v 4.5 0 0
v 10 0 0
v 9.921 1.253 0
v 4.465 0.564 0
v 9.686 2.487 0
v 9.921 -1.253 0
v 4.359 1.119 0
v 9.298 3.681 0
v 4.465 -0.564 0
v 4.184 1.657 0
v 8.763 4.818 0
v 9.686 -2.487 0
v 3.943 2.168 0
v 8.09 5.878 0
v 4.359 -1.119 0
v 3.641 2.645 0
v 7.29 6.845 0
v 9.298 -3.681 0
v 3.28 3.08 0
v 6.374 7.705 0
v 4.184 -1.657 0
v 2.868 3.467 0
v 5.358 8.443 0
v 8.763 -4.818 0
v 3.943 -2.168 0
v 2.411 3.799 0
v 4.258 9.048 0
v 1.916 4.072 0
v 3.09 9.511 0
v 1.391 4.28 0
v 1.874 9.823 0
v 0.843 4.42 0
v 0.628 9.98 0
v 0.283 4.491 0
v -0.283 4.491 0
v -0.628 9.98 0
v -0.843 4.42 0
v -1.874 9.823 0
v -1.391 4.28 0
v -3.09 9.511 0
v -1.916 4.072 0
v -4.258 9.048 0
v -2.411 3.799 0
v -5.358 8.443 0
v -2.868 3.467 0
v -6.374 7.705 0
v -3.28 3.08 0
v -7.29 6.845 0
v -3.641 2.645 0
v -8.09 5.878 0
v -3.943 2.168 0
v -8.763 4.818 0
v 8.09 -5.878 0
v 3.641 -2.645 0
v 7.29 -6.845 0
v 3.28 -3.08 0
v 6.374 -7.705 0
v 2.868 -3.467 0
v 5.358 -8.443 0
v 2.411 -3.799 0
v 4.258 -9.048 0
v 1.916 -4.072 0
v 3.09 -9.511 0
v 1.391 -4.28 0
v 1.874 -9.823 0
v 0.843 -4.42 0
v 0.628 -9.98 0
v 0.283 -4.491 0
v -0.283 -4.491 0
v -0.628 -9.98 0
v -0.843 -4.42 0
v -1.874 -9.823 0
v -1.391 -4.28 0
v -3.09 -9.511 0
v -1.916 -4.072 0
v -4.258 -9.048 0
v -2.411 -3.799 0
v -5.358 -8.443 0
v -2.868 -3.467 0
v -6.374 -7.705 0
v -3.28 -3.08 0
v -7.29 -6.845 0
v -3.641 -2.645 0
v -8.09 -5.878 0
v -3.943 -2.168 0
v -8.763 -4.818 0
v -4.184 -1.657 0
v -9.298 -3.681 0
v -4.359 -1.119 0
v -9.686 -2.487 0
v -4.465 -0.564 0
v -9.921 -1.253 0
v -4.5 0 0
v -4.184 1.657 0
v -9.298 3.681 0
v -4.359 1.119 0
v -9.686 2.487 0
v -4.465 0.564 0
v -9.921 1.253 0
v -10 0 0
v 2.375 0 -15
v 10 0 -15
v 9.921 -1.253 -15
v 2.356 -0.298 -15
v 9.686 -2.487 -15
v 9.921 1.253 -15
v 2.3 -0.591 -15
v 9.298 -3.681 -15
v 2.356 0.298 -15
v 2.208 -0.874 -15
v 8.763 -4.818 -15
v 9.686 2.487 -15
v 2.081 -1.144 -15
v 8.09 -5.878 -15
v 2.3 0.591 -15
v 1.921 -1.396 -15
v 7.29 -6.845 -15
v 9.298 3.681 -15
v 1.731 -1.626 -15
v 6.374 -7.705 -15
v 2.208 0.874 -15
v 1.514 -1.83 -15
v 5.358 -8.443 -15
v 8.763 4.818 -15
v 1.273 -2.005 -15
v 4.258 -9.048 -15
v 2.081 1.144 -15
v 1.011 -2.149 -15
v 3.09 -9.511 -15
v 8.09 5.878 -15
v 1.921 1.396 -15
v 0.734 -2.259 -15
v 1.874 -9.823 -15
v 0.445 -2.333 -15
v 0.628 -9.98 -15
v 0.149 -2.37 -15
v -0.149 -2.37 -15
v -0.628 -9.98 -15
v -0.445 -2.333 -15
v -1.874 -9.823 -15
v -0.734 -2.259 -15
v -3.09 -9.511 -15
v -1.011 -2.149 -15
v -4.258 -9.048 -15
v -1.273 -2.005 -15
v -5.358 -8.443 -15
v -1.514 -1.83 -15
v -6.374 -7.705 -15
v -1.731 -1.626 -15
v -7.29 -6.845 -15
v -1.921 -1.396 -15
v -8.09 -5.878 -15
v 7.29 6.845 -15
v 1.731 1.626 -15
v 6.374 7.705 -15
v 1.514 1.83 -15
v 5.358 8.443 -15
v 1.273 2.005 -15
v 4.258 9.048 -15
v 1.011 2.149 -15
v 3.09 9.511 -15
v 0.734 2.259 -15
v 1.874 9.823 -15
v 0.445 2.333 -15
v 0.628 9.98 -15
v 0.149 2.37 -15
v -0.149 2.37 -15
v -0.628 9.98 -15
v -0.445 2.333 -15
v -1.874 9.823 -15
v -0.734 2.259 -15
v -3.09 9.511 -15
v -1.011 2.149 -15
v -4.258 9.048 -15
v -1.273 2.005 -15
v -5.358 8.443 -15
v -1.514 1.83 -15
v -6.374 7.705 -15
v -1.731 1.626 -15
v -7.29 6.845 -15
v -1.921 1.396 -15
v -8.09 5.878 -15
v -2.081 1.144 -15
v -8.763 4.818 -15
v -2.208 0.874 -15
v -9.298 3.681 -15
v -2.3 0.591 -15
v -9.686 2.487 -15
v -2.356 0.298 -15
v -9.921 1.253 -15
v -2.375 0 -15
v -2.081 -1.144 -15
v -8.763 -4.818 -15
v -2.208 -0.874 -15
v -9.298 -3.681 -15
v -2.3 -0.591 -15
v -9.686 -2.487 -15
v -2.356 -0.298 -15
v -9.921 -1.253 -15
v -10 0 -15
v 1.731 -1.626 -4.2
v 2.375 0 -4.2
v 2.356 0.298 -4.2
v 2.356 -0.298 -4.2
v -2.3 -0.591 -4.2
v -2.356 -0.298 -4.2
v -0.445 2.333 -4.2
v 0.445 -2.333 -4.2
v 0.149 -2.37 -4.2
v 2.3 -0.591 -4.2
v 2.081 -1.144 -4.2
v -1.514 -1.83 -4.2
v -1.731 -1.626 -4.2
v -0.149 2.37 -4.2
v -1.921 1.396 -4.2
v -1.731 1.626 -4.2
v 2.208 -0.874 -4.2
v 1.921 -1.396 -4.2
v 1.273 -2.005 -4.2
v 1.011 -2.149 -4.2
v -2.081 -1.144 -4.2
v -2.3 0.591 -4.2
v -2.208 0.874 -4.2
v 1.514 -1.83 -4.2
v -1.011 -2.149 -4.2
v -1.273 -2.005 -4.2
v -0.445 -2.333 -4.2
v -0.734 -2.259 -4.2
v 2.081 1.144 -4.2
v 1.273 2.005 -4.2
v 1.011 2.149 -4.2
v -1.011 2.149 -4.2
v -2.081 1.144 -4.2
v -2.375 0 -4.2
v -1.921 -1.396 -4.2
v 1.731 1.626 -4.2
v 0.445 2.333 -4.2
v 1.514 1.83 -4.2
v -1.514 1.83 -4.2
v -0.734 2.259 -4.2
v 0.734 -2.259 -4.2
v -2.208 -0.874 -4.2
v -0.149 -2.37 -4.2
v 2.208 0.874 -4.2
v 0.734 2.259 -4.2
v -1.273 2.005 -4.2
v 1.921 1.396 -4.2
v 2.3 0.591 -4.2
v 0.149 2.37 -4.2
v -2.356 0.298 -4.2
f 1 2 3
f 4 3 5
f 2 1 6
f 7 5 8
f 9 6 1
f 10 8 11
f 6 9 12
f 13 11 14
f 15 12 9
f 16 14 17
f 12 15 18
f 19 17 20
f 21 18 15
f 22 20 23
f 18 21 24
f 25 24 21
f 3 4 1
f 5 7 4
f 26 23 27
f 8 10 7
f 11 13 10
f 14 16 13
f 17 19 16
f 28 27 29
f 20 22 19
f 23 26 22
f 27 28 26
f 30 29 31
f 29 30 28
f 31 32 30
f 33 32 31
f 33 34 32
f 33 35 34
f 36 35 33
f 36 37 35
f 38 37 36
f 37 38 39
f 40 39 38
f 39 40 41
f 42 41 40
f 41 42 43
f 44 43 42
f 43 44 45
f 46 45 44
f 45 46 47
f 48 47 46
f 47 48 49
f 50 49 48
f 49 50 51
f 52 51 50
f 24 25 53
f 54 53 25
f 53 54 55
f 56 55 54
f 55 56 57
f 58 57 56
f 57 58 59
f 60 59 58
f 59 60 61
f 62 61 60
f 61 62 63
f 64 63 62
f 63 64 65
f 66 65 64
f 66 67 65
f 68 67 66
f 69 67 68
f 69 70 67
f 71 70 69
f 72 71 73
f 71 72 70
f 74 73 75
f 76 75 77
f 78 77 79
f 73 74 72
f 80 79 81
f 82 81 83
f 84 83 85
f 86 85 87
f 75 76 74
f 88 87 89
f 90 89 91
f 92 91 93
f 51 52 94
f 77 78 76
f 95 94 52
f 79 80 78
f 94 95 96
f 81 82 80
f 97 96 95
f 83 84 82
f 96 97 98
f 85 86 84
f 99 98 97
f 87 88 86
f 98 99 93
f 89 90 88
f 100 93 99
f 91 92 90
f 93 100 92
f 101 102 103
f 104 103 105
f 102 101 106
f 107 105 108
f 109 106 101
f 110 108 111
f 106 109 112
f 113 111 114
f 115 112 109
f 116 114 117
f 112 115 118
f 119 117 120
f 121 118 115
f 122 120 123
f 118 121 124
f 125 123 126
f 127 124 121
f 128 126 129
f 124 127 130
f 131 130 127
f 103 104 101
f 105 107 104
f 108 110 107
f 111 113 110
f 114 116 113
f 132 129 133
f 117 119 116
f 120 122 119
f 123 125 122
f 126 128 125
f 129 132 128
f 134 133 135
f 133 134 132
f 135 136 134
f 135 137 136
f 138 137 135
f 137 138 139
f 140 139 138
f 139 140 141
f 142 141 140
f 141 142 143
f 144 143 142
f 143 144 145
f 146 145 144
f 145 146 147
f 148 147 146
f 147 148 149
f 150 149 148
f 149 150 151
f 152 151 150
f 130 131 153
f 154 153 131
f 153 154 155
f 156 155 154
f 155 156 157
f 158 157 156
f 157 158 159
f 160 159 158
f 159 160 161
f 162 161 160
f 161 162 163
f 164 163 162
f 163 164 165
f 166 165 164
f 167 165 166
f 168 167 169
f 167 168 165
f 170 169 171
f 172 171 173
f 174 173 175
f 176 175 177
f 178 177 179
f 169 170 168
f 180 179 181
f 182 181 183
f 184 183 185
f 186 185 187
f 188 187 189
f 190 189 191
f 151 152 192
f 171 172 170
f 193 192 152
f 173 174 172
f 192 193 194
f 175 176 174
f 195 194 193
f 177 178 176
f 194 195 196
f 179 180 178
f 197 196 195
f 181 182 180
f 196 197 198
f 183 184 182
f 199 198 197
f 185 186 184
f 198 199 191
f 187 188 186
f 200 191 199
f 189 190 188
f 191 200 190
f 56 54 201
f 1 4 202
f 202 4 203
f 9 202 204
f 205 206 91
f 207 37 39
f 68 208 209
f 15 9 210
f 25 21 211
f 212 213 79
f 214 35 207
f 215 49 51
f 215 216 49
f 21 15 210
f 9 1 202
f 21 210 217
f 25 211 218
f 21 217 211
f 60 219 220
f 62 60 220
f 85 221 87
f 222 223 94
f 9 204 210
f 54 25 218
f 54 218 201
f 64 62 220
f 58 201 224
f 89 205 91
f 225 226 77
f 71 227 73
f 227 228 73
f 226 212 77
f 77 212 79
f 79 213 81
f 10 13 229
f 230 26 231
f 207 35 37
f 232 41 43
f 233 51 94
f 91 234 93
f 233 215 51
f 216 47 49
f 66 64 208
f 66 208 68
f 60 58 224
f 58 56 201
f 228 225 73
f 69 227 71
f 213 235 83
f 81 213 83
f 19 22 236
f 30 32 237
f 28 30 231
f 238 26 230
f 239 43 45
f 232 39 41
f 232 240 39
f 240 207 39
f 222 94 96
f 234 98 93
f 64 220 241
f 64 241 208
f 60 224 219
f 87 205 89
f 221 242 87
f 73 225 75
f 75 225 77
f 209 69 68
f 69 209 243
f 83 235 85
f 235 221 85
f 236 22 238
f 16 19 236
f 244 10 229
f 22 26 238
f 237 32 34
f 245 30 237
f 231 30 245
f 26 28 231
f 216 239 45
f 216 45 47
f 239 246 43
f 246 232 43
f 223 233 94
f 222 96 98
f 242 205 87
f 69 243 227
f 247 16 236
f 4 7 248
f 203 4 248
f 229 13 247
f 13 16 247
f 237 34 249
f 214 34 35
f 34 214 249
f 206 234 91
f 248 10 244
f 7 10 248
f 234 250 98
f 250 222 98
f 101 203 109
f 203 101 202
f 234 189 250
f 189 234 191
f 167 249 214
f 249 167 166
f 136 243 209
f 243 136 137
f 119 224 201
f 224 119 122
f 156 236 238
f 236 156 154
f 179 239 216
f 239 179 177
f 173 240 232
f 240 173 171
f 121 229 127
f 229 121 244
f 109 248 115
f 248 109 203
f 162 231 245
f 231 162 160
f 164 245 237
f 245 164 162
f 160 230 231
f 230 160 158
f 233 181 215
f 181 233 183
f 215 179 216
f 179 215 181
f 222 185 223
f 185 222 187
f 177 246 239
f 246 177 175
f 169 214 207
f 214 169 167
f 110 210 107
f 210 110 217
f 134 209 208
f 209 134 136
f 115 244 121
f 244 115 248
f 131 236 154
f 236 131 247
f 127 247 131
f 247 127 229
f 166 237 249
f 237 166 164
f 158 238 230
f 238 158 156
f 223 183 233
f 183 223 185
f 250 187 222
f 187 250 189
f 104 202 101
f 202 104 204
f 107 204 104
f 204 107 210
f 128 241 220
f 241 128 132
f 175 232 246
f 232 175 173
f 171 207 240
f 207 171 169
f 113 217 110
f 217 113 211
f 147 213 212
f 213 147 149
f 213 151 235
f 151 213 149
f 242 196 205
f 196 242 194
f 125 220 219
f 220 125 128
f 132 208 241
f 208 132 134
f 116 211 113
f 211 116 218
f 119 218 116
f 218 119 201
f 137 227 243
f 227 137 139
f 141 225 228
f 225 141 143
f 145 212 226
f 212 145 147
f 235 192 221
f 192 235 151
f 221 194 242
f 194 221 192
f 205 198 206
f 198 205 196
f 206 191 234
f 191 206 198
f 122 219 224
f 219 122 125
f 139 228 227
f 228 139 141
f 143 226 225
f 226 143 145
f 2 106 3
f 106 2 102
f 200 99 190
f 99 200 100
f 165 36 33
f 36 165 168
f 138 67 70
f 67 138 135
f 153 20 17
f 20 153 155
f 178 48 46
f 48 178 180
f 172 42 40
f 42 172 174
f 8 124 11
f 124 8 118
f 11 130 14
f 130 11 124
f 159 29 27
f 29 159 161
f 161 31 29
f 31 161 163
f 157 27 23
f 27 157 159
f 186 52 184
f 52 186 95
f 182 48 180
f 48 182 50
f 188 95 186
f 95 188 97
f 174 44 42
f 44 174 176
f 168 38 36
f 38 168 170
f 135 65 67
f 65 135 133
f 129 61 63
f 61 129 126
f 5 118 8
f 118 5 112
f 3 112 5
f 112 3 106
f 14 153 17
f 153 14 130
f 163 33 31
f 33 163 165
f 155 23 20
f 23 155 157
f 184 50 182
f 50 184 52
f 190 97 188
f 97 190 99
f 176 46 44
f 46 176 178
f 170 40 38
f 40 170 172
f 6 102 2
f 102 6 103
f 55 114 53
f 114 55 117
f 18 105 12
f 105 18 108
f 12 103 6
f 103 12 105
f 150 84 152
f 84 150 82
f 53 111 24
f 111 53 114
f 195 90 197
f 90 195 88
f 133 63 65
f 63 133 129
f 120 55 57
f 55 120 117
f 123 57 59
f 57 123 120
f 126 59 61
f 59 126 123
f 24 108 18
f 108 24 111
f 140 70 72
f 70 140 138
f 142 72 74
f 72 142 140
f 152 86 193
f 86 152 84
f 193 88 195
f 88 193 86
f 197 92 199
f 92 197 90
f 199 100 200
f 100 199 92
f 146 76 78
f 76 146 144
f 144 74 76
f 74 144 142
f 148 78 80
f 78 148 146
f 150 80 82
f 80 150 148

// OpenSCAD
$fn = 50;


difference() {
	union() {
		translate(v = [0, 0, -15.0000000000]) {
			cylinder(h = 15, r = 10.0000000000);
		}
		cylinder(h = 0, r = 16.0000000000);
	}
	union() {
		translate(v = [0, 0, 0]) {
			rotate(a = [0, 0, 0]) {
				difference() {
					union() {
						#translate(v = [0, 0, -15.0000000000]) {
							cylinder(h = 15, r = 2.2500000000);
						}
						#translate(v = [0, 0, -4.2000000000]) {
							cylinder(h = 4.2000000000, r = 10.0000000000, r1 = 2.3750000000, r2 = 4.5000000000);
						}
						#translate(v = [0, 0, -15.0000000000]) {
							cylinder(h = 15, r = 2.3750000000);
						}
						#translate(v = [0, 0, -15.0000000000]) {
							cylinder(h = 15, r = 2.2500000000);
						}
					}
					union();
				}
			}
		}
	}
}
